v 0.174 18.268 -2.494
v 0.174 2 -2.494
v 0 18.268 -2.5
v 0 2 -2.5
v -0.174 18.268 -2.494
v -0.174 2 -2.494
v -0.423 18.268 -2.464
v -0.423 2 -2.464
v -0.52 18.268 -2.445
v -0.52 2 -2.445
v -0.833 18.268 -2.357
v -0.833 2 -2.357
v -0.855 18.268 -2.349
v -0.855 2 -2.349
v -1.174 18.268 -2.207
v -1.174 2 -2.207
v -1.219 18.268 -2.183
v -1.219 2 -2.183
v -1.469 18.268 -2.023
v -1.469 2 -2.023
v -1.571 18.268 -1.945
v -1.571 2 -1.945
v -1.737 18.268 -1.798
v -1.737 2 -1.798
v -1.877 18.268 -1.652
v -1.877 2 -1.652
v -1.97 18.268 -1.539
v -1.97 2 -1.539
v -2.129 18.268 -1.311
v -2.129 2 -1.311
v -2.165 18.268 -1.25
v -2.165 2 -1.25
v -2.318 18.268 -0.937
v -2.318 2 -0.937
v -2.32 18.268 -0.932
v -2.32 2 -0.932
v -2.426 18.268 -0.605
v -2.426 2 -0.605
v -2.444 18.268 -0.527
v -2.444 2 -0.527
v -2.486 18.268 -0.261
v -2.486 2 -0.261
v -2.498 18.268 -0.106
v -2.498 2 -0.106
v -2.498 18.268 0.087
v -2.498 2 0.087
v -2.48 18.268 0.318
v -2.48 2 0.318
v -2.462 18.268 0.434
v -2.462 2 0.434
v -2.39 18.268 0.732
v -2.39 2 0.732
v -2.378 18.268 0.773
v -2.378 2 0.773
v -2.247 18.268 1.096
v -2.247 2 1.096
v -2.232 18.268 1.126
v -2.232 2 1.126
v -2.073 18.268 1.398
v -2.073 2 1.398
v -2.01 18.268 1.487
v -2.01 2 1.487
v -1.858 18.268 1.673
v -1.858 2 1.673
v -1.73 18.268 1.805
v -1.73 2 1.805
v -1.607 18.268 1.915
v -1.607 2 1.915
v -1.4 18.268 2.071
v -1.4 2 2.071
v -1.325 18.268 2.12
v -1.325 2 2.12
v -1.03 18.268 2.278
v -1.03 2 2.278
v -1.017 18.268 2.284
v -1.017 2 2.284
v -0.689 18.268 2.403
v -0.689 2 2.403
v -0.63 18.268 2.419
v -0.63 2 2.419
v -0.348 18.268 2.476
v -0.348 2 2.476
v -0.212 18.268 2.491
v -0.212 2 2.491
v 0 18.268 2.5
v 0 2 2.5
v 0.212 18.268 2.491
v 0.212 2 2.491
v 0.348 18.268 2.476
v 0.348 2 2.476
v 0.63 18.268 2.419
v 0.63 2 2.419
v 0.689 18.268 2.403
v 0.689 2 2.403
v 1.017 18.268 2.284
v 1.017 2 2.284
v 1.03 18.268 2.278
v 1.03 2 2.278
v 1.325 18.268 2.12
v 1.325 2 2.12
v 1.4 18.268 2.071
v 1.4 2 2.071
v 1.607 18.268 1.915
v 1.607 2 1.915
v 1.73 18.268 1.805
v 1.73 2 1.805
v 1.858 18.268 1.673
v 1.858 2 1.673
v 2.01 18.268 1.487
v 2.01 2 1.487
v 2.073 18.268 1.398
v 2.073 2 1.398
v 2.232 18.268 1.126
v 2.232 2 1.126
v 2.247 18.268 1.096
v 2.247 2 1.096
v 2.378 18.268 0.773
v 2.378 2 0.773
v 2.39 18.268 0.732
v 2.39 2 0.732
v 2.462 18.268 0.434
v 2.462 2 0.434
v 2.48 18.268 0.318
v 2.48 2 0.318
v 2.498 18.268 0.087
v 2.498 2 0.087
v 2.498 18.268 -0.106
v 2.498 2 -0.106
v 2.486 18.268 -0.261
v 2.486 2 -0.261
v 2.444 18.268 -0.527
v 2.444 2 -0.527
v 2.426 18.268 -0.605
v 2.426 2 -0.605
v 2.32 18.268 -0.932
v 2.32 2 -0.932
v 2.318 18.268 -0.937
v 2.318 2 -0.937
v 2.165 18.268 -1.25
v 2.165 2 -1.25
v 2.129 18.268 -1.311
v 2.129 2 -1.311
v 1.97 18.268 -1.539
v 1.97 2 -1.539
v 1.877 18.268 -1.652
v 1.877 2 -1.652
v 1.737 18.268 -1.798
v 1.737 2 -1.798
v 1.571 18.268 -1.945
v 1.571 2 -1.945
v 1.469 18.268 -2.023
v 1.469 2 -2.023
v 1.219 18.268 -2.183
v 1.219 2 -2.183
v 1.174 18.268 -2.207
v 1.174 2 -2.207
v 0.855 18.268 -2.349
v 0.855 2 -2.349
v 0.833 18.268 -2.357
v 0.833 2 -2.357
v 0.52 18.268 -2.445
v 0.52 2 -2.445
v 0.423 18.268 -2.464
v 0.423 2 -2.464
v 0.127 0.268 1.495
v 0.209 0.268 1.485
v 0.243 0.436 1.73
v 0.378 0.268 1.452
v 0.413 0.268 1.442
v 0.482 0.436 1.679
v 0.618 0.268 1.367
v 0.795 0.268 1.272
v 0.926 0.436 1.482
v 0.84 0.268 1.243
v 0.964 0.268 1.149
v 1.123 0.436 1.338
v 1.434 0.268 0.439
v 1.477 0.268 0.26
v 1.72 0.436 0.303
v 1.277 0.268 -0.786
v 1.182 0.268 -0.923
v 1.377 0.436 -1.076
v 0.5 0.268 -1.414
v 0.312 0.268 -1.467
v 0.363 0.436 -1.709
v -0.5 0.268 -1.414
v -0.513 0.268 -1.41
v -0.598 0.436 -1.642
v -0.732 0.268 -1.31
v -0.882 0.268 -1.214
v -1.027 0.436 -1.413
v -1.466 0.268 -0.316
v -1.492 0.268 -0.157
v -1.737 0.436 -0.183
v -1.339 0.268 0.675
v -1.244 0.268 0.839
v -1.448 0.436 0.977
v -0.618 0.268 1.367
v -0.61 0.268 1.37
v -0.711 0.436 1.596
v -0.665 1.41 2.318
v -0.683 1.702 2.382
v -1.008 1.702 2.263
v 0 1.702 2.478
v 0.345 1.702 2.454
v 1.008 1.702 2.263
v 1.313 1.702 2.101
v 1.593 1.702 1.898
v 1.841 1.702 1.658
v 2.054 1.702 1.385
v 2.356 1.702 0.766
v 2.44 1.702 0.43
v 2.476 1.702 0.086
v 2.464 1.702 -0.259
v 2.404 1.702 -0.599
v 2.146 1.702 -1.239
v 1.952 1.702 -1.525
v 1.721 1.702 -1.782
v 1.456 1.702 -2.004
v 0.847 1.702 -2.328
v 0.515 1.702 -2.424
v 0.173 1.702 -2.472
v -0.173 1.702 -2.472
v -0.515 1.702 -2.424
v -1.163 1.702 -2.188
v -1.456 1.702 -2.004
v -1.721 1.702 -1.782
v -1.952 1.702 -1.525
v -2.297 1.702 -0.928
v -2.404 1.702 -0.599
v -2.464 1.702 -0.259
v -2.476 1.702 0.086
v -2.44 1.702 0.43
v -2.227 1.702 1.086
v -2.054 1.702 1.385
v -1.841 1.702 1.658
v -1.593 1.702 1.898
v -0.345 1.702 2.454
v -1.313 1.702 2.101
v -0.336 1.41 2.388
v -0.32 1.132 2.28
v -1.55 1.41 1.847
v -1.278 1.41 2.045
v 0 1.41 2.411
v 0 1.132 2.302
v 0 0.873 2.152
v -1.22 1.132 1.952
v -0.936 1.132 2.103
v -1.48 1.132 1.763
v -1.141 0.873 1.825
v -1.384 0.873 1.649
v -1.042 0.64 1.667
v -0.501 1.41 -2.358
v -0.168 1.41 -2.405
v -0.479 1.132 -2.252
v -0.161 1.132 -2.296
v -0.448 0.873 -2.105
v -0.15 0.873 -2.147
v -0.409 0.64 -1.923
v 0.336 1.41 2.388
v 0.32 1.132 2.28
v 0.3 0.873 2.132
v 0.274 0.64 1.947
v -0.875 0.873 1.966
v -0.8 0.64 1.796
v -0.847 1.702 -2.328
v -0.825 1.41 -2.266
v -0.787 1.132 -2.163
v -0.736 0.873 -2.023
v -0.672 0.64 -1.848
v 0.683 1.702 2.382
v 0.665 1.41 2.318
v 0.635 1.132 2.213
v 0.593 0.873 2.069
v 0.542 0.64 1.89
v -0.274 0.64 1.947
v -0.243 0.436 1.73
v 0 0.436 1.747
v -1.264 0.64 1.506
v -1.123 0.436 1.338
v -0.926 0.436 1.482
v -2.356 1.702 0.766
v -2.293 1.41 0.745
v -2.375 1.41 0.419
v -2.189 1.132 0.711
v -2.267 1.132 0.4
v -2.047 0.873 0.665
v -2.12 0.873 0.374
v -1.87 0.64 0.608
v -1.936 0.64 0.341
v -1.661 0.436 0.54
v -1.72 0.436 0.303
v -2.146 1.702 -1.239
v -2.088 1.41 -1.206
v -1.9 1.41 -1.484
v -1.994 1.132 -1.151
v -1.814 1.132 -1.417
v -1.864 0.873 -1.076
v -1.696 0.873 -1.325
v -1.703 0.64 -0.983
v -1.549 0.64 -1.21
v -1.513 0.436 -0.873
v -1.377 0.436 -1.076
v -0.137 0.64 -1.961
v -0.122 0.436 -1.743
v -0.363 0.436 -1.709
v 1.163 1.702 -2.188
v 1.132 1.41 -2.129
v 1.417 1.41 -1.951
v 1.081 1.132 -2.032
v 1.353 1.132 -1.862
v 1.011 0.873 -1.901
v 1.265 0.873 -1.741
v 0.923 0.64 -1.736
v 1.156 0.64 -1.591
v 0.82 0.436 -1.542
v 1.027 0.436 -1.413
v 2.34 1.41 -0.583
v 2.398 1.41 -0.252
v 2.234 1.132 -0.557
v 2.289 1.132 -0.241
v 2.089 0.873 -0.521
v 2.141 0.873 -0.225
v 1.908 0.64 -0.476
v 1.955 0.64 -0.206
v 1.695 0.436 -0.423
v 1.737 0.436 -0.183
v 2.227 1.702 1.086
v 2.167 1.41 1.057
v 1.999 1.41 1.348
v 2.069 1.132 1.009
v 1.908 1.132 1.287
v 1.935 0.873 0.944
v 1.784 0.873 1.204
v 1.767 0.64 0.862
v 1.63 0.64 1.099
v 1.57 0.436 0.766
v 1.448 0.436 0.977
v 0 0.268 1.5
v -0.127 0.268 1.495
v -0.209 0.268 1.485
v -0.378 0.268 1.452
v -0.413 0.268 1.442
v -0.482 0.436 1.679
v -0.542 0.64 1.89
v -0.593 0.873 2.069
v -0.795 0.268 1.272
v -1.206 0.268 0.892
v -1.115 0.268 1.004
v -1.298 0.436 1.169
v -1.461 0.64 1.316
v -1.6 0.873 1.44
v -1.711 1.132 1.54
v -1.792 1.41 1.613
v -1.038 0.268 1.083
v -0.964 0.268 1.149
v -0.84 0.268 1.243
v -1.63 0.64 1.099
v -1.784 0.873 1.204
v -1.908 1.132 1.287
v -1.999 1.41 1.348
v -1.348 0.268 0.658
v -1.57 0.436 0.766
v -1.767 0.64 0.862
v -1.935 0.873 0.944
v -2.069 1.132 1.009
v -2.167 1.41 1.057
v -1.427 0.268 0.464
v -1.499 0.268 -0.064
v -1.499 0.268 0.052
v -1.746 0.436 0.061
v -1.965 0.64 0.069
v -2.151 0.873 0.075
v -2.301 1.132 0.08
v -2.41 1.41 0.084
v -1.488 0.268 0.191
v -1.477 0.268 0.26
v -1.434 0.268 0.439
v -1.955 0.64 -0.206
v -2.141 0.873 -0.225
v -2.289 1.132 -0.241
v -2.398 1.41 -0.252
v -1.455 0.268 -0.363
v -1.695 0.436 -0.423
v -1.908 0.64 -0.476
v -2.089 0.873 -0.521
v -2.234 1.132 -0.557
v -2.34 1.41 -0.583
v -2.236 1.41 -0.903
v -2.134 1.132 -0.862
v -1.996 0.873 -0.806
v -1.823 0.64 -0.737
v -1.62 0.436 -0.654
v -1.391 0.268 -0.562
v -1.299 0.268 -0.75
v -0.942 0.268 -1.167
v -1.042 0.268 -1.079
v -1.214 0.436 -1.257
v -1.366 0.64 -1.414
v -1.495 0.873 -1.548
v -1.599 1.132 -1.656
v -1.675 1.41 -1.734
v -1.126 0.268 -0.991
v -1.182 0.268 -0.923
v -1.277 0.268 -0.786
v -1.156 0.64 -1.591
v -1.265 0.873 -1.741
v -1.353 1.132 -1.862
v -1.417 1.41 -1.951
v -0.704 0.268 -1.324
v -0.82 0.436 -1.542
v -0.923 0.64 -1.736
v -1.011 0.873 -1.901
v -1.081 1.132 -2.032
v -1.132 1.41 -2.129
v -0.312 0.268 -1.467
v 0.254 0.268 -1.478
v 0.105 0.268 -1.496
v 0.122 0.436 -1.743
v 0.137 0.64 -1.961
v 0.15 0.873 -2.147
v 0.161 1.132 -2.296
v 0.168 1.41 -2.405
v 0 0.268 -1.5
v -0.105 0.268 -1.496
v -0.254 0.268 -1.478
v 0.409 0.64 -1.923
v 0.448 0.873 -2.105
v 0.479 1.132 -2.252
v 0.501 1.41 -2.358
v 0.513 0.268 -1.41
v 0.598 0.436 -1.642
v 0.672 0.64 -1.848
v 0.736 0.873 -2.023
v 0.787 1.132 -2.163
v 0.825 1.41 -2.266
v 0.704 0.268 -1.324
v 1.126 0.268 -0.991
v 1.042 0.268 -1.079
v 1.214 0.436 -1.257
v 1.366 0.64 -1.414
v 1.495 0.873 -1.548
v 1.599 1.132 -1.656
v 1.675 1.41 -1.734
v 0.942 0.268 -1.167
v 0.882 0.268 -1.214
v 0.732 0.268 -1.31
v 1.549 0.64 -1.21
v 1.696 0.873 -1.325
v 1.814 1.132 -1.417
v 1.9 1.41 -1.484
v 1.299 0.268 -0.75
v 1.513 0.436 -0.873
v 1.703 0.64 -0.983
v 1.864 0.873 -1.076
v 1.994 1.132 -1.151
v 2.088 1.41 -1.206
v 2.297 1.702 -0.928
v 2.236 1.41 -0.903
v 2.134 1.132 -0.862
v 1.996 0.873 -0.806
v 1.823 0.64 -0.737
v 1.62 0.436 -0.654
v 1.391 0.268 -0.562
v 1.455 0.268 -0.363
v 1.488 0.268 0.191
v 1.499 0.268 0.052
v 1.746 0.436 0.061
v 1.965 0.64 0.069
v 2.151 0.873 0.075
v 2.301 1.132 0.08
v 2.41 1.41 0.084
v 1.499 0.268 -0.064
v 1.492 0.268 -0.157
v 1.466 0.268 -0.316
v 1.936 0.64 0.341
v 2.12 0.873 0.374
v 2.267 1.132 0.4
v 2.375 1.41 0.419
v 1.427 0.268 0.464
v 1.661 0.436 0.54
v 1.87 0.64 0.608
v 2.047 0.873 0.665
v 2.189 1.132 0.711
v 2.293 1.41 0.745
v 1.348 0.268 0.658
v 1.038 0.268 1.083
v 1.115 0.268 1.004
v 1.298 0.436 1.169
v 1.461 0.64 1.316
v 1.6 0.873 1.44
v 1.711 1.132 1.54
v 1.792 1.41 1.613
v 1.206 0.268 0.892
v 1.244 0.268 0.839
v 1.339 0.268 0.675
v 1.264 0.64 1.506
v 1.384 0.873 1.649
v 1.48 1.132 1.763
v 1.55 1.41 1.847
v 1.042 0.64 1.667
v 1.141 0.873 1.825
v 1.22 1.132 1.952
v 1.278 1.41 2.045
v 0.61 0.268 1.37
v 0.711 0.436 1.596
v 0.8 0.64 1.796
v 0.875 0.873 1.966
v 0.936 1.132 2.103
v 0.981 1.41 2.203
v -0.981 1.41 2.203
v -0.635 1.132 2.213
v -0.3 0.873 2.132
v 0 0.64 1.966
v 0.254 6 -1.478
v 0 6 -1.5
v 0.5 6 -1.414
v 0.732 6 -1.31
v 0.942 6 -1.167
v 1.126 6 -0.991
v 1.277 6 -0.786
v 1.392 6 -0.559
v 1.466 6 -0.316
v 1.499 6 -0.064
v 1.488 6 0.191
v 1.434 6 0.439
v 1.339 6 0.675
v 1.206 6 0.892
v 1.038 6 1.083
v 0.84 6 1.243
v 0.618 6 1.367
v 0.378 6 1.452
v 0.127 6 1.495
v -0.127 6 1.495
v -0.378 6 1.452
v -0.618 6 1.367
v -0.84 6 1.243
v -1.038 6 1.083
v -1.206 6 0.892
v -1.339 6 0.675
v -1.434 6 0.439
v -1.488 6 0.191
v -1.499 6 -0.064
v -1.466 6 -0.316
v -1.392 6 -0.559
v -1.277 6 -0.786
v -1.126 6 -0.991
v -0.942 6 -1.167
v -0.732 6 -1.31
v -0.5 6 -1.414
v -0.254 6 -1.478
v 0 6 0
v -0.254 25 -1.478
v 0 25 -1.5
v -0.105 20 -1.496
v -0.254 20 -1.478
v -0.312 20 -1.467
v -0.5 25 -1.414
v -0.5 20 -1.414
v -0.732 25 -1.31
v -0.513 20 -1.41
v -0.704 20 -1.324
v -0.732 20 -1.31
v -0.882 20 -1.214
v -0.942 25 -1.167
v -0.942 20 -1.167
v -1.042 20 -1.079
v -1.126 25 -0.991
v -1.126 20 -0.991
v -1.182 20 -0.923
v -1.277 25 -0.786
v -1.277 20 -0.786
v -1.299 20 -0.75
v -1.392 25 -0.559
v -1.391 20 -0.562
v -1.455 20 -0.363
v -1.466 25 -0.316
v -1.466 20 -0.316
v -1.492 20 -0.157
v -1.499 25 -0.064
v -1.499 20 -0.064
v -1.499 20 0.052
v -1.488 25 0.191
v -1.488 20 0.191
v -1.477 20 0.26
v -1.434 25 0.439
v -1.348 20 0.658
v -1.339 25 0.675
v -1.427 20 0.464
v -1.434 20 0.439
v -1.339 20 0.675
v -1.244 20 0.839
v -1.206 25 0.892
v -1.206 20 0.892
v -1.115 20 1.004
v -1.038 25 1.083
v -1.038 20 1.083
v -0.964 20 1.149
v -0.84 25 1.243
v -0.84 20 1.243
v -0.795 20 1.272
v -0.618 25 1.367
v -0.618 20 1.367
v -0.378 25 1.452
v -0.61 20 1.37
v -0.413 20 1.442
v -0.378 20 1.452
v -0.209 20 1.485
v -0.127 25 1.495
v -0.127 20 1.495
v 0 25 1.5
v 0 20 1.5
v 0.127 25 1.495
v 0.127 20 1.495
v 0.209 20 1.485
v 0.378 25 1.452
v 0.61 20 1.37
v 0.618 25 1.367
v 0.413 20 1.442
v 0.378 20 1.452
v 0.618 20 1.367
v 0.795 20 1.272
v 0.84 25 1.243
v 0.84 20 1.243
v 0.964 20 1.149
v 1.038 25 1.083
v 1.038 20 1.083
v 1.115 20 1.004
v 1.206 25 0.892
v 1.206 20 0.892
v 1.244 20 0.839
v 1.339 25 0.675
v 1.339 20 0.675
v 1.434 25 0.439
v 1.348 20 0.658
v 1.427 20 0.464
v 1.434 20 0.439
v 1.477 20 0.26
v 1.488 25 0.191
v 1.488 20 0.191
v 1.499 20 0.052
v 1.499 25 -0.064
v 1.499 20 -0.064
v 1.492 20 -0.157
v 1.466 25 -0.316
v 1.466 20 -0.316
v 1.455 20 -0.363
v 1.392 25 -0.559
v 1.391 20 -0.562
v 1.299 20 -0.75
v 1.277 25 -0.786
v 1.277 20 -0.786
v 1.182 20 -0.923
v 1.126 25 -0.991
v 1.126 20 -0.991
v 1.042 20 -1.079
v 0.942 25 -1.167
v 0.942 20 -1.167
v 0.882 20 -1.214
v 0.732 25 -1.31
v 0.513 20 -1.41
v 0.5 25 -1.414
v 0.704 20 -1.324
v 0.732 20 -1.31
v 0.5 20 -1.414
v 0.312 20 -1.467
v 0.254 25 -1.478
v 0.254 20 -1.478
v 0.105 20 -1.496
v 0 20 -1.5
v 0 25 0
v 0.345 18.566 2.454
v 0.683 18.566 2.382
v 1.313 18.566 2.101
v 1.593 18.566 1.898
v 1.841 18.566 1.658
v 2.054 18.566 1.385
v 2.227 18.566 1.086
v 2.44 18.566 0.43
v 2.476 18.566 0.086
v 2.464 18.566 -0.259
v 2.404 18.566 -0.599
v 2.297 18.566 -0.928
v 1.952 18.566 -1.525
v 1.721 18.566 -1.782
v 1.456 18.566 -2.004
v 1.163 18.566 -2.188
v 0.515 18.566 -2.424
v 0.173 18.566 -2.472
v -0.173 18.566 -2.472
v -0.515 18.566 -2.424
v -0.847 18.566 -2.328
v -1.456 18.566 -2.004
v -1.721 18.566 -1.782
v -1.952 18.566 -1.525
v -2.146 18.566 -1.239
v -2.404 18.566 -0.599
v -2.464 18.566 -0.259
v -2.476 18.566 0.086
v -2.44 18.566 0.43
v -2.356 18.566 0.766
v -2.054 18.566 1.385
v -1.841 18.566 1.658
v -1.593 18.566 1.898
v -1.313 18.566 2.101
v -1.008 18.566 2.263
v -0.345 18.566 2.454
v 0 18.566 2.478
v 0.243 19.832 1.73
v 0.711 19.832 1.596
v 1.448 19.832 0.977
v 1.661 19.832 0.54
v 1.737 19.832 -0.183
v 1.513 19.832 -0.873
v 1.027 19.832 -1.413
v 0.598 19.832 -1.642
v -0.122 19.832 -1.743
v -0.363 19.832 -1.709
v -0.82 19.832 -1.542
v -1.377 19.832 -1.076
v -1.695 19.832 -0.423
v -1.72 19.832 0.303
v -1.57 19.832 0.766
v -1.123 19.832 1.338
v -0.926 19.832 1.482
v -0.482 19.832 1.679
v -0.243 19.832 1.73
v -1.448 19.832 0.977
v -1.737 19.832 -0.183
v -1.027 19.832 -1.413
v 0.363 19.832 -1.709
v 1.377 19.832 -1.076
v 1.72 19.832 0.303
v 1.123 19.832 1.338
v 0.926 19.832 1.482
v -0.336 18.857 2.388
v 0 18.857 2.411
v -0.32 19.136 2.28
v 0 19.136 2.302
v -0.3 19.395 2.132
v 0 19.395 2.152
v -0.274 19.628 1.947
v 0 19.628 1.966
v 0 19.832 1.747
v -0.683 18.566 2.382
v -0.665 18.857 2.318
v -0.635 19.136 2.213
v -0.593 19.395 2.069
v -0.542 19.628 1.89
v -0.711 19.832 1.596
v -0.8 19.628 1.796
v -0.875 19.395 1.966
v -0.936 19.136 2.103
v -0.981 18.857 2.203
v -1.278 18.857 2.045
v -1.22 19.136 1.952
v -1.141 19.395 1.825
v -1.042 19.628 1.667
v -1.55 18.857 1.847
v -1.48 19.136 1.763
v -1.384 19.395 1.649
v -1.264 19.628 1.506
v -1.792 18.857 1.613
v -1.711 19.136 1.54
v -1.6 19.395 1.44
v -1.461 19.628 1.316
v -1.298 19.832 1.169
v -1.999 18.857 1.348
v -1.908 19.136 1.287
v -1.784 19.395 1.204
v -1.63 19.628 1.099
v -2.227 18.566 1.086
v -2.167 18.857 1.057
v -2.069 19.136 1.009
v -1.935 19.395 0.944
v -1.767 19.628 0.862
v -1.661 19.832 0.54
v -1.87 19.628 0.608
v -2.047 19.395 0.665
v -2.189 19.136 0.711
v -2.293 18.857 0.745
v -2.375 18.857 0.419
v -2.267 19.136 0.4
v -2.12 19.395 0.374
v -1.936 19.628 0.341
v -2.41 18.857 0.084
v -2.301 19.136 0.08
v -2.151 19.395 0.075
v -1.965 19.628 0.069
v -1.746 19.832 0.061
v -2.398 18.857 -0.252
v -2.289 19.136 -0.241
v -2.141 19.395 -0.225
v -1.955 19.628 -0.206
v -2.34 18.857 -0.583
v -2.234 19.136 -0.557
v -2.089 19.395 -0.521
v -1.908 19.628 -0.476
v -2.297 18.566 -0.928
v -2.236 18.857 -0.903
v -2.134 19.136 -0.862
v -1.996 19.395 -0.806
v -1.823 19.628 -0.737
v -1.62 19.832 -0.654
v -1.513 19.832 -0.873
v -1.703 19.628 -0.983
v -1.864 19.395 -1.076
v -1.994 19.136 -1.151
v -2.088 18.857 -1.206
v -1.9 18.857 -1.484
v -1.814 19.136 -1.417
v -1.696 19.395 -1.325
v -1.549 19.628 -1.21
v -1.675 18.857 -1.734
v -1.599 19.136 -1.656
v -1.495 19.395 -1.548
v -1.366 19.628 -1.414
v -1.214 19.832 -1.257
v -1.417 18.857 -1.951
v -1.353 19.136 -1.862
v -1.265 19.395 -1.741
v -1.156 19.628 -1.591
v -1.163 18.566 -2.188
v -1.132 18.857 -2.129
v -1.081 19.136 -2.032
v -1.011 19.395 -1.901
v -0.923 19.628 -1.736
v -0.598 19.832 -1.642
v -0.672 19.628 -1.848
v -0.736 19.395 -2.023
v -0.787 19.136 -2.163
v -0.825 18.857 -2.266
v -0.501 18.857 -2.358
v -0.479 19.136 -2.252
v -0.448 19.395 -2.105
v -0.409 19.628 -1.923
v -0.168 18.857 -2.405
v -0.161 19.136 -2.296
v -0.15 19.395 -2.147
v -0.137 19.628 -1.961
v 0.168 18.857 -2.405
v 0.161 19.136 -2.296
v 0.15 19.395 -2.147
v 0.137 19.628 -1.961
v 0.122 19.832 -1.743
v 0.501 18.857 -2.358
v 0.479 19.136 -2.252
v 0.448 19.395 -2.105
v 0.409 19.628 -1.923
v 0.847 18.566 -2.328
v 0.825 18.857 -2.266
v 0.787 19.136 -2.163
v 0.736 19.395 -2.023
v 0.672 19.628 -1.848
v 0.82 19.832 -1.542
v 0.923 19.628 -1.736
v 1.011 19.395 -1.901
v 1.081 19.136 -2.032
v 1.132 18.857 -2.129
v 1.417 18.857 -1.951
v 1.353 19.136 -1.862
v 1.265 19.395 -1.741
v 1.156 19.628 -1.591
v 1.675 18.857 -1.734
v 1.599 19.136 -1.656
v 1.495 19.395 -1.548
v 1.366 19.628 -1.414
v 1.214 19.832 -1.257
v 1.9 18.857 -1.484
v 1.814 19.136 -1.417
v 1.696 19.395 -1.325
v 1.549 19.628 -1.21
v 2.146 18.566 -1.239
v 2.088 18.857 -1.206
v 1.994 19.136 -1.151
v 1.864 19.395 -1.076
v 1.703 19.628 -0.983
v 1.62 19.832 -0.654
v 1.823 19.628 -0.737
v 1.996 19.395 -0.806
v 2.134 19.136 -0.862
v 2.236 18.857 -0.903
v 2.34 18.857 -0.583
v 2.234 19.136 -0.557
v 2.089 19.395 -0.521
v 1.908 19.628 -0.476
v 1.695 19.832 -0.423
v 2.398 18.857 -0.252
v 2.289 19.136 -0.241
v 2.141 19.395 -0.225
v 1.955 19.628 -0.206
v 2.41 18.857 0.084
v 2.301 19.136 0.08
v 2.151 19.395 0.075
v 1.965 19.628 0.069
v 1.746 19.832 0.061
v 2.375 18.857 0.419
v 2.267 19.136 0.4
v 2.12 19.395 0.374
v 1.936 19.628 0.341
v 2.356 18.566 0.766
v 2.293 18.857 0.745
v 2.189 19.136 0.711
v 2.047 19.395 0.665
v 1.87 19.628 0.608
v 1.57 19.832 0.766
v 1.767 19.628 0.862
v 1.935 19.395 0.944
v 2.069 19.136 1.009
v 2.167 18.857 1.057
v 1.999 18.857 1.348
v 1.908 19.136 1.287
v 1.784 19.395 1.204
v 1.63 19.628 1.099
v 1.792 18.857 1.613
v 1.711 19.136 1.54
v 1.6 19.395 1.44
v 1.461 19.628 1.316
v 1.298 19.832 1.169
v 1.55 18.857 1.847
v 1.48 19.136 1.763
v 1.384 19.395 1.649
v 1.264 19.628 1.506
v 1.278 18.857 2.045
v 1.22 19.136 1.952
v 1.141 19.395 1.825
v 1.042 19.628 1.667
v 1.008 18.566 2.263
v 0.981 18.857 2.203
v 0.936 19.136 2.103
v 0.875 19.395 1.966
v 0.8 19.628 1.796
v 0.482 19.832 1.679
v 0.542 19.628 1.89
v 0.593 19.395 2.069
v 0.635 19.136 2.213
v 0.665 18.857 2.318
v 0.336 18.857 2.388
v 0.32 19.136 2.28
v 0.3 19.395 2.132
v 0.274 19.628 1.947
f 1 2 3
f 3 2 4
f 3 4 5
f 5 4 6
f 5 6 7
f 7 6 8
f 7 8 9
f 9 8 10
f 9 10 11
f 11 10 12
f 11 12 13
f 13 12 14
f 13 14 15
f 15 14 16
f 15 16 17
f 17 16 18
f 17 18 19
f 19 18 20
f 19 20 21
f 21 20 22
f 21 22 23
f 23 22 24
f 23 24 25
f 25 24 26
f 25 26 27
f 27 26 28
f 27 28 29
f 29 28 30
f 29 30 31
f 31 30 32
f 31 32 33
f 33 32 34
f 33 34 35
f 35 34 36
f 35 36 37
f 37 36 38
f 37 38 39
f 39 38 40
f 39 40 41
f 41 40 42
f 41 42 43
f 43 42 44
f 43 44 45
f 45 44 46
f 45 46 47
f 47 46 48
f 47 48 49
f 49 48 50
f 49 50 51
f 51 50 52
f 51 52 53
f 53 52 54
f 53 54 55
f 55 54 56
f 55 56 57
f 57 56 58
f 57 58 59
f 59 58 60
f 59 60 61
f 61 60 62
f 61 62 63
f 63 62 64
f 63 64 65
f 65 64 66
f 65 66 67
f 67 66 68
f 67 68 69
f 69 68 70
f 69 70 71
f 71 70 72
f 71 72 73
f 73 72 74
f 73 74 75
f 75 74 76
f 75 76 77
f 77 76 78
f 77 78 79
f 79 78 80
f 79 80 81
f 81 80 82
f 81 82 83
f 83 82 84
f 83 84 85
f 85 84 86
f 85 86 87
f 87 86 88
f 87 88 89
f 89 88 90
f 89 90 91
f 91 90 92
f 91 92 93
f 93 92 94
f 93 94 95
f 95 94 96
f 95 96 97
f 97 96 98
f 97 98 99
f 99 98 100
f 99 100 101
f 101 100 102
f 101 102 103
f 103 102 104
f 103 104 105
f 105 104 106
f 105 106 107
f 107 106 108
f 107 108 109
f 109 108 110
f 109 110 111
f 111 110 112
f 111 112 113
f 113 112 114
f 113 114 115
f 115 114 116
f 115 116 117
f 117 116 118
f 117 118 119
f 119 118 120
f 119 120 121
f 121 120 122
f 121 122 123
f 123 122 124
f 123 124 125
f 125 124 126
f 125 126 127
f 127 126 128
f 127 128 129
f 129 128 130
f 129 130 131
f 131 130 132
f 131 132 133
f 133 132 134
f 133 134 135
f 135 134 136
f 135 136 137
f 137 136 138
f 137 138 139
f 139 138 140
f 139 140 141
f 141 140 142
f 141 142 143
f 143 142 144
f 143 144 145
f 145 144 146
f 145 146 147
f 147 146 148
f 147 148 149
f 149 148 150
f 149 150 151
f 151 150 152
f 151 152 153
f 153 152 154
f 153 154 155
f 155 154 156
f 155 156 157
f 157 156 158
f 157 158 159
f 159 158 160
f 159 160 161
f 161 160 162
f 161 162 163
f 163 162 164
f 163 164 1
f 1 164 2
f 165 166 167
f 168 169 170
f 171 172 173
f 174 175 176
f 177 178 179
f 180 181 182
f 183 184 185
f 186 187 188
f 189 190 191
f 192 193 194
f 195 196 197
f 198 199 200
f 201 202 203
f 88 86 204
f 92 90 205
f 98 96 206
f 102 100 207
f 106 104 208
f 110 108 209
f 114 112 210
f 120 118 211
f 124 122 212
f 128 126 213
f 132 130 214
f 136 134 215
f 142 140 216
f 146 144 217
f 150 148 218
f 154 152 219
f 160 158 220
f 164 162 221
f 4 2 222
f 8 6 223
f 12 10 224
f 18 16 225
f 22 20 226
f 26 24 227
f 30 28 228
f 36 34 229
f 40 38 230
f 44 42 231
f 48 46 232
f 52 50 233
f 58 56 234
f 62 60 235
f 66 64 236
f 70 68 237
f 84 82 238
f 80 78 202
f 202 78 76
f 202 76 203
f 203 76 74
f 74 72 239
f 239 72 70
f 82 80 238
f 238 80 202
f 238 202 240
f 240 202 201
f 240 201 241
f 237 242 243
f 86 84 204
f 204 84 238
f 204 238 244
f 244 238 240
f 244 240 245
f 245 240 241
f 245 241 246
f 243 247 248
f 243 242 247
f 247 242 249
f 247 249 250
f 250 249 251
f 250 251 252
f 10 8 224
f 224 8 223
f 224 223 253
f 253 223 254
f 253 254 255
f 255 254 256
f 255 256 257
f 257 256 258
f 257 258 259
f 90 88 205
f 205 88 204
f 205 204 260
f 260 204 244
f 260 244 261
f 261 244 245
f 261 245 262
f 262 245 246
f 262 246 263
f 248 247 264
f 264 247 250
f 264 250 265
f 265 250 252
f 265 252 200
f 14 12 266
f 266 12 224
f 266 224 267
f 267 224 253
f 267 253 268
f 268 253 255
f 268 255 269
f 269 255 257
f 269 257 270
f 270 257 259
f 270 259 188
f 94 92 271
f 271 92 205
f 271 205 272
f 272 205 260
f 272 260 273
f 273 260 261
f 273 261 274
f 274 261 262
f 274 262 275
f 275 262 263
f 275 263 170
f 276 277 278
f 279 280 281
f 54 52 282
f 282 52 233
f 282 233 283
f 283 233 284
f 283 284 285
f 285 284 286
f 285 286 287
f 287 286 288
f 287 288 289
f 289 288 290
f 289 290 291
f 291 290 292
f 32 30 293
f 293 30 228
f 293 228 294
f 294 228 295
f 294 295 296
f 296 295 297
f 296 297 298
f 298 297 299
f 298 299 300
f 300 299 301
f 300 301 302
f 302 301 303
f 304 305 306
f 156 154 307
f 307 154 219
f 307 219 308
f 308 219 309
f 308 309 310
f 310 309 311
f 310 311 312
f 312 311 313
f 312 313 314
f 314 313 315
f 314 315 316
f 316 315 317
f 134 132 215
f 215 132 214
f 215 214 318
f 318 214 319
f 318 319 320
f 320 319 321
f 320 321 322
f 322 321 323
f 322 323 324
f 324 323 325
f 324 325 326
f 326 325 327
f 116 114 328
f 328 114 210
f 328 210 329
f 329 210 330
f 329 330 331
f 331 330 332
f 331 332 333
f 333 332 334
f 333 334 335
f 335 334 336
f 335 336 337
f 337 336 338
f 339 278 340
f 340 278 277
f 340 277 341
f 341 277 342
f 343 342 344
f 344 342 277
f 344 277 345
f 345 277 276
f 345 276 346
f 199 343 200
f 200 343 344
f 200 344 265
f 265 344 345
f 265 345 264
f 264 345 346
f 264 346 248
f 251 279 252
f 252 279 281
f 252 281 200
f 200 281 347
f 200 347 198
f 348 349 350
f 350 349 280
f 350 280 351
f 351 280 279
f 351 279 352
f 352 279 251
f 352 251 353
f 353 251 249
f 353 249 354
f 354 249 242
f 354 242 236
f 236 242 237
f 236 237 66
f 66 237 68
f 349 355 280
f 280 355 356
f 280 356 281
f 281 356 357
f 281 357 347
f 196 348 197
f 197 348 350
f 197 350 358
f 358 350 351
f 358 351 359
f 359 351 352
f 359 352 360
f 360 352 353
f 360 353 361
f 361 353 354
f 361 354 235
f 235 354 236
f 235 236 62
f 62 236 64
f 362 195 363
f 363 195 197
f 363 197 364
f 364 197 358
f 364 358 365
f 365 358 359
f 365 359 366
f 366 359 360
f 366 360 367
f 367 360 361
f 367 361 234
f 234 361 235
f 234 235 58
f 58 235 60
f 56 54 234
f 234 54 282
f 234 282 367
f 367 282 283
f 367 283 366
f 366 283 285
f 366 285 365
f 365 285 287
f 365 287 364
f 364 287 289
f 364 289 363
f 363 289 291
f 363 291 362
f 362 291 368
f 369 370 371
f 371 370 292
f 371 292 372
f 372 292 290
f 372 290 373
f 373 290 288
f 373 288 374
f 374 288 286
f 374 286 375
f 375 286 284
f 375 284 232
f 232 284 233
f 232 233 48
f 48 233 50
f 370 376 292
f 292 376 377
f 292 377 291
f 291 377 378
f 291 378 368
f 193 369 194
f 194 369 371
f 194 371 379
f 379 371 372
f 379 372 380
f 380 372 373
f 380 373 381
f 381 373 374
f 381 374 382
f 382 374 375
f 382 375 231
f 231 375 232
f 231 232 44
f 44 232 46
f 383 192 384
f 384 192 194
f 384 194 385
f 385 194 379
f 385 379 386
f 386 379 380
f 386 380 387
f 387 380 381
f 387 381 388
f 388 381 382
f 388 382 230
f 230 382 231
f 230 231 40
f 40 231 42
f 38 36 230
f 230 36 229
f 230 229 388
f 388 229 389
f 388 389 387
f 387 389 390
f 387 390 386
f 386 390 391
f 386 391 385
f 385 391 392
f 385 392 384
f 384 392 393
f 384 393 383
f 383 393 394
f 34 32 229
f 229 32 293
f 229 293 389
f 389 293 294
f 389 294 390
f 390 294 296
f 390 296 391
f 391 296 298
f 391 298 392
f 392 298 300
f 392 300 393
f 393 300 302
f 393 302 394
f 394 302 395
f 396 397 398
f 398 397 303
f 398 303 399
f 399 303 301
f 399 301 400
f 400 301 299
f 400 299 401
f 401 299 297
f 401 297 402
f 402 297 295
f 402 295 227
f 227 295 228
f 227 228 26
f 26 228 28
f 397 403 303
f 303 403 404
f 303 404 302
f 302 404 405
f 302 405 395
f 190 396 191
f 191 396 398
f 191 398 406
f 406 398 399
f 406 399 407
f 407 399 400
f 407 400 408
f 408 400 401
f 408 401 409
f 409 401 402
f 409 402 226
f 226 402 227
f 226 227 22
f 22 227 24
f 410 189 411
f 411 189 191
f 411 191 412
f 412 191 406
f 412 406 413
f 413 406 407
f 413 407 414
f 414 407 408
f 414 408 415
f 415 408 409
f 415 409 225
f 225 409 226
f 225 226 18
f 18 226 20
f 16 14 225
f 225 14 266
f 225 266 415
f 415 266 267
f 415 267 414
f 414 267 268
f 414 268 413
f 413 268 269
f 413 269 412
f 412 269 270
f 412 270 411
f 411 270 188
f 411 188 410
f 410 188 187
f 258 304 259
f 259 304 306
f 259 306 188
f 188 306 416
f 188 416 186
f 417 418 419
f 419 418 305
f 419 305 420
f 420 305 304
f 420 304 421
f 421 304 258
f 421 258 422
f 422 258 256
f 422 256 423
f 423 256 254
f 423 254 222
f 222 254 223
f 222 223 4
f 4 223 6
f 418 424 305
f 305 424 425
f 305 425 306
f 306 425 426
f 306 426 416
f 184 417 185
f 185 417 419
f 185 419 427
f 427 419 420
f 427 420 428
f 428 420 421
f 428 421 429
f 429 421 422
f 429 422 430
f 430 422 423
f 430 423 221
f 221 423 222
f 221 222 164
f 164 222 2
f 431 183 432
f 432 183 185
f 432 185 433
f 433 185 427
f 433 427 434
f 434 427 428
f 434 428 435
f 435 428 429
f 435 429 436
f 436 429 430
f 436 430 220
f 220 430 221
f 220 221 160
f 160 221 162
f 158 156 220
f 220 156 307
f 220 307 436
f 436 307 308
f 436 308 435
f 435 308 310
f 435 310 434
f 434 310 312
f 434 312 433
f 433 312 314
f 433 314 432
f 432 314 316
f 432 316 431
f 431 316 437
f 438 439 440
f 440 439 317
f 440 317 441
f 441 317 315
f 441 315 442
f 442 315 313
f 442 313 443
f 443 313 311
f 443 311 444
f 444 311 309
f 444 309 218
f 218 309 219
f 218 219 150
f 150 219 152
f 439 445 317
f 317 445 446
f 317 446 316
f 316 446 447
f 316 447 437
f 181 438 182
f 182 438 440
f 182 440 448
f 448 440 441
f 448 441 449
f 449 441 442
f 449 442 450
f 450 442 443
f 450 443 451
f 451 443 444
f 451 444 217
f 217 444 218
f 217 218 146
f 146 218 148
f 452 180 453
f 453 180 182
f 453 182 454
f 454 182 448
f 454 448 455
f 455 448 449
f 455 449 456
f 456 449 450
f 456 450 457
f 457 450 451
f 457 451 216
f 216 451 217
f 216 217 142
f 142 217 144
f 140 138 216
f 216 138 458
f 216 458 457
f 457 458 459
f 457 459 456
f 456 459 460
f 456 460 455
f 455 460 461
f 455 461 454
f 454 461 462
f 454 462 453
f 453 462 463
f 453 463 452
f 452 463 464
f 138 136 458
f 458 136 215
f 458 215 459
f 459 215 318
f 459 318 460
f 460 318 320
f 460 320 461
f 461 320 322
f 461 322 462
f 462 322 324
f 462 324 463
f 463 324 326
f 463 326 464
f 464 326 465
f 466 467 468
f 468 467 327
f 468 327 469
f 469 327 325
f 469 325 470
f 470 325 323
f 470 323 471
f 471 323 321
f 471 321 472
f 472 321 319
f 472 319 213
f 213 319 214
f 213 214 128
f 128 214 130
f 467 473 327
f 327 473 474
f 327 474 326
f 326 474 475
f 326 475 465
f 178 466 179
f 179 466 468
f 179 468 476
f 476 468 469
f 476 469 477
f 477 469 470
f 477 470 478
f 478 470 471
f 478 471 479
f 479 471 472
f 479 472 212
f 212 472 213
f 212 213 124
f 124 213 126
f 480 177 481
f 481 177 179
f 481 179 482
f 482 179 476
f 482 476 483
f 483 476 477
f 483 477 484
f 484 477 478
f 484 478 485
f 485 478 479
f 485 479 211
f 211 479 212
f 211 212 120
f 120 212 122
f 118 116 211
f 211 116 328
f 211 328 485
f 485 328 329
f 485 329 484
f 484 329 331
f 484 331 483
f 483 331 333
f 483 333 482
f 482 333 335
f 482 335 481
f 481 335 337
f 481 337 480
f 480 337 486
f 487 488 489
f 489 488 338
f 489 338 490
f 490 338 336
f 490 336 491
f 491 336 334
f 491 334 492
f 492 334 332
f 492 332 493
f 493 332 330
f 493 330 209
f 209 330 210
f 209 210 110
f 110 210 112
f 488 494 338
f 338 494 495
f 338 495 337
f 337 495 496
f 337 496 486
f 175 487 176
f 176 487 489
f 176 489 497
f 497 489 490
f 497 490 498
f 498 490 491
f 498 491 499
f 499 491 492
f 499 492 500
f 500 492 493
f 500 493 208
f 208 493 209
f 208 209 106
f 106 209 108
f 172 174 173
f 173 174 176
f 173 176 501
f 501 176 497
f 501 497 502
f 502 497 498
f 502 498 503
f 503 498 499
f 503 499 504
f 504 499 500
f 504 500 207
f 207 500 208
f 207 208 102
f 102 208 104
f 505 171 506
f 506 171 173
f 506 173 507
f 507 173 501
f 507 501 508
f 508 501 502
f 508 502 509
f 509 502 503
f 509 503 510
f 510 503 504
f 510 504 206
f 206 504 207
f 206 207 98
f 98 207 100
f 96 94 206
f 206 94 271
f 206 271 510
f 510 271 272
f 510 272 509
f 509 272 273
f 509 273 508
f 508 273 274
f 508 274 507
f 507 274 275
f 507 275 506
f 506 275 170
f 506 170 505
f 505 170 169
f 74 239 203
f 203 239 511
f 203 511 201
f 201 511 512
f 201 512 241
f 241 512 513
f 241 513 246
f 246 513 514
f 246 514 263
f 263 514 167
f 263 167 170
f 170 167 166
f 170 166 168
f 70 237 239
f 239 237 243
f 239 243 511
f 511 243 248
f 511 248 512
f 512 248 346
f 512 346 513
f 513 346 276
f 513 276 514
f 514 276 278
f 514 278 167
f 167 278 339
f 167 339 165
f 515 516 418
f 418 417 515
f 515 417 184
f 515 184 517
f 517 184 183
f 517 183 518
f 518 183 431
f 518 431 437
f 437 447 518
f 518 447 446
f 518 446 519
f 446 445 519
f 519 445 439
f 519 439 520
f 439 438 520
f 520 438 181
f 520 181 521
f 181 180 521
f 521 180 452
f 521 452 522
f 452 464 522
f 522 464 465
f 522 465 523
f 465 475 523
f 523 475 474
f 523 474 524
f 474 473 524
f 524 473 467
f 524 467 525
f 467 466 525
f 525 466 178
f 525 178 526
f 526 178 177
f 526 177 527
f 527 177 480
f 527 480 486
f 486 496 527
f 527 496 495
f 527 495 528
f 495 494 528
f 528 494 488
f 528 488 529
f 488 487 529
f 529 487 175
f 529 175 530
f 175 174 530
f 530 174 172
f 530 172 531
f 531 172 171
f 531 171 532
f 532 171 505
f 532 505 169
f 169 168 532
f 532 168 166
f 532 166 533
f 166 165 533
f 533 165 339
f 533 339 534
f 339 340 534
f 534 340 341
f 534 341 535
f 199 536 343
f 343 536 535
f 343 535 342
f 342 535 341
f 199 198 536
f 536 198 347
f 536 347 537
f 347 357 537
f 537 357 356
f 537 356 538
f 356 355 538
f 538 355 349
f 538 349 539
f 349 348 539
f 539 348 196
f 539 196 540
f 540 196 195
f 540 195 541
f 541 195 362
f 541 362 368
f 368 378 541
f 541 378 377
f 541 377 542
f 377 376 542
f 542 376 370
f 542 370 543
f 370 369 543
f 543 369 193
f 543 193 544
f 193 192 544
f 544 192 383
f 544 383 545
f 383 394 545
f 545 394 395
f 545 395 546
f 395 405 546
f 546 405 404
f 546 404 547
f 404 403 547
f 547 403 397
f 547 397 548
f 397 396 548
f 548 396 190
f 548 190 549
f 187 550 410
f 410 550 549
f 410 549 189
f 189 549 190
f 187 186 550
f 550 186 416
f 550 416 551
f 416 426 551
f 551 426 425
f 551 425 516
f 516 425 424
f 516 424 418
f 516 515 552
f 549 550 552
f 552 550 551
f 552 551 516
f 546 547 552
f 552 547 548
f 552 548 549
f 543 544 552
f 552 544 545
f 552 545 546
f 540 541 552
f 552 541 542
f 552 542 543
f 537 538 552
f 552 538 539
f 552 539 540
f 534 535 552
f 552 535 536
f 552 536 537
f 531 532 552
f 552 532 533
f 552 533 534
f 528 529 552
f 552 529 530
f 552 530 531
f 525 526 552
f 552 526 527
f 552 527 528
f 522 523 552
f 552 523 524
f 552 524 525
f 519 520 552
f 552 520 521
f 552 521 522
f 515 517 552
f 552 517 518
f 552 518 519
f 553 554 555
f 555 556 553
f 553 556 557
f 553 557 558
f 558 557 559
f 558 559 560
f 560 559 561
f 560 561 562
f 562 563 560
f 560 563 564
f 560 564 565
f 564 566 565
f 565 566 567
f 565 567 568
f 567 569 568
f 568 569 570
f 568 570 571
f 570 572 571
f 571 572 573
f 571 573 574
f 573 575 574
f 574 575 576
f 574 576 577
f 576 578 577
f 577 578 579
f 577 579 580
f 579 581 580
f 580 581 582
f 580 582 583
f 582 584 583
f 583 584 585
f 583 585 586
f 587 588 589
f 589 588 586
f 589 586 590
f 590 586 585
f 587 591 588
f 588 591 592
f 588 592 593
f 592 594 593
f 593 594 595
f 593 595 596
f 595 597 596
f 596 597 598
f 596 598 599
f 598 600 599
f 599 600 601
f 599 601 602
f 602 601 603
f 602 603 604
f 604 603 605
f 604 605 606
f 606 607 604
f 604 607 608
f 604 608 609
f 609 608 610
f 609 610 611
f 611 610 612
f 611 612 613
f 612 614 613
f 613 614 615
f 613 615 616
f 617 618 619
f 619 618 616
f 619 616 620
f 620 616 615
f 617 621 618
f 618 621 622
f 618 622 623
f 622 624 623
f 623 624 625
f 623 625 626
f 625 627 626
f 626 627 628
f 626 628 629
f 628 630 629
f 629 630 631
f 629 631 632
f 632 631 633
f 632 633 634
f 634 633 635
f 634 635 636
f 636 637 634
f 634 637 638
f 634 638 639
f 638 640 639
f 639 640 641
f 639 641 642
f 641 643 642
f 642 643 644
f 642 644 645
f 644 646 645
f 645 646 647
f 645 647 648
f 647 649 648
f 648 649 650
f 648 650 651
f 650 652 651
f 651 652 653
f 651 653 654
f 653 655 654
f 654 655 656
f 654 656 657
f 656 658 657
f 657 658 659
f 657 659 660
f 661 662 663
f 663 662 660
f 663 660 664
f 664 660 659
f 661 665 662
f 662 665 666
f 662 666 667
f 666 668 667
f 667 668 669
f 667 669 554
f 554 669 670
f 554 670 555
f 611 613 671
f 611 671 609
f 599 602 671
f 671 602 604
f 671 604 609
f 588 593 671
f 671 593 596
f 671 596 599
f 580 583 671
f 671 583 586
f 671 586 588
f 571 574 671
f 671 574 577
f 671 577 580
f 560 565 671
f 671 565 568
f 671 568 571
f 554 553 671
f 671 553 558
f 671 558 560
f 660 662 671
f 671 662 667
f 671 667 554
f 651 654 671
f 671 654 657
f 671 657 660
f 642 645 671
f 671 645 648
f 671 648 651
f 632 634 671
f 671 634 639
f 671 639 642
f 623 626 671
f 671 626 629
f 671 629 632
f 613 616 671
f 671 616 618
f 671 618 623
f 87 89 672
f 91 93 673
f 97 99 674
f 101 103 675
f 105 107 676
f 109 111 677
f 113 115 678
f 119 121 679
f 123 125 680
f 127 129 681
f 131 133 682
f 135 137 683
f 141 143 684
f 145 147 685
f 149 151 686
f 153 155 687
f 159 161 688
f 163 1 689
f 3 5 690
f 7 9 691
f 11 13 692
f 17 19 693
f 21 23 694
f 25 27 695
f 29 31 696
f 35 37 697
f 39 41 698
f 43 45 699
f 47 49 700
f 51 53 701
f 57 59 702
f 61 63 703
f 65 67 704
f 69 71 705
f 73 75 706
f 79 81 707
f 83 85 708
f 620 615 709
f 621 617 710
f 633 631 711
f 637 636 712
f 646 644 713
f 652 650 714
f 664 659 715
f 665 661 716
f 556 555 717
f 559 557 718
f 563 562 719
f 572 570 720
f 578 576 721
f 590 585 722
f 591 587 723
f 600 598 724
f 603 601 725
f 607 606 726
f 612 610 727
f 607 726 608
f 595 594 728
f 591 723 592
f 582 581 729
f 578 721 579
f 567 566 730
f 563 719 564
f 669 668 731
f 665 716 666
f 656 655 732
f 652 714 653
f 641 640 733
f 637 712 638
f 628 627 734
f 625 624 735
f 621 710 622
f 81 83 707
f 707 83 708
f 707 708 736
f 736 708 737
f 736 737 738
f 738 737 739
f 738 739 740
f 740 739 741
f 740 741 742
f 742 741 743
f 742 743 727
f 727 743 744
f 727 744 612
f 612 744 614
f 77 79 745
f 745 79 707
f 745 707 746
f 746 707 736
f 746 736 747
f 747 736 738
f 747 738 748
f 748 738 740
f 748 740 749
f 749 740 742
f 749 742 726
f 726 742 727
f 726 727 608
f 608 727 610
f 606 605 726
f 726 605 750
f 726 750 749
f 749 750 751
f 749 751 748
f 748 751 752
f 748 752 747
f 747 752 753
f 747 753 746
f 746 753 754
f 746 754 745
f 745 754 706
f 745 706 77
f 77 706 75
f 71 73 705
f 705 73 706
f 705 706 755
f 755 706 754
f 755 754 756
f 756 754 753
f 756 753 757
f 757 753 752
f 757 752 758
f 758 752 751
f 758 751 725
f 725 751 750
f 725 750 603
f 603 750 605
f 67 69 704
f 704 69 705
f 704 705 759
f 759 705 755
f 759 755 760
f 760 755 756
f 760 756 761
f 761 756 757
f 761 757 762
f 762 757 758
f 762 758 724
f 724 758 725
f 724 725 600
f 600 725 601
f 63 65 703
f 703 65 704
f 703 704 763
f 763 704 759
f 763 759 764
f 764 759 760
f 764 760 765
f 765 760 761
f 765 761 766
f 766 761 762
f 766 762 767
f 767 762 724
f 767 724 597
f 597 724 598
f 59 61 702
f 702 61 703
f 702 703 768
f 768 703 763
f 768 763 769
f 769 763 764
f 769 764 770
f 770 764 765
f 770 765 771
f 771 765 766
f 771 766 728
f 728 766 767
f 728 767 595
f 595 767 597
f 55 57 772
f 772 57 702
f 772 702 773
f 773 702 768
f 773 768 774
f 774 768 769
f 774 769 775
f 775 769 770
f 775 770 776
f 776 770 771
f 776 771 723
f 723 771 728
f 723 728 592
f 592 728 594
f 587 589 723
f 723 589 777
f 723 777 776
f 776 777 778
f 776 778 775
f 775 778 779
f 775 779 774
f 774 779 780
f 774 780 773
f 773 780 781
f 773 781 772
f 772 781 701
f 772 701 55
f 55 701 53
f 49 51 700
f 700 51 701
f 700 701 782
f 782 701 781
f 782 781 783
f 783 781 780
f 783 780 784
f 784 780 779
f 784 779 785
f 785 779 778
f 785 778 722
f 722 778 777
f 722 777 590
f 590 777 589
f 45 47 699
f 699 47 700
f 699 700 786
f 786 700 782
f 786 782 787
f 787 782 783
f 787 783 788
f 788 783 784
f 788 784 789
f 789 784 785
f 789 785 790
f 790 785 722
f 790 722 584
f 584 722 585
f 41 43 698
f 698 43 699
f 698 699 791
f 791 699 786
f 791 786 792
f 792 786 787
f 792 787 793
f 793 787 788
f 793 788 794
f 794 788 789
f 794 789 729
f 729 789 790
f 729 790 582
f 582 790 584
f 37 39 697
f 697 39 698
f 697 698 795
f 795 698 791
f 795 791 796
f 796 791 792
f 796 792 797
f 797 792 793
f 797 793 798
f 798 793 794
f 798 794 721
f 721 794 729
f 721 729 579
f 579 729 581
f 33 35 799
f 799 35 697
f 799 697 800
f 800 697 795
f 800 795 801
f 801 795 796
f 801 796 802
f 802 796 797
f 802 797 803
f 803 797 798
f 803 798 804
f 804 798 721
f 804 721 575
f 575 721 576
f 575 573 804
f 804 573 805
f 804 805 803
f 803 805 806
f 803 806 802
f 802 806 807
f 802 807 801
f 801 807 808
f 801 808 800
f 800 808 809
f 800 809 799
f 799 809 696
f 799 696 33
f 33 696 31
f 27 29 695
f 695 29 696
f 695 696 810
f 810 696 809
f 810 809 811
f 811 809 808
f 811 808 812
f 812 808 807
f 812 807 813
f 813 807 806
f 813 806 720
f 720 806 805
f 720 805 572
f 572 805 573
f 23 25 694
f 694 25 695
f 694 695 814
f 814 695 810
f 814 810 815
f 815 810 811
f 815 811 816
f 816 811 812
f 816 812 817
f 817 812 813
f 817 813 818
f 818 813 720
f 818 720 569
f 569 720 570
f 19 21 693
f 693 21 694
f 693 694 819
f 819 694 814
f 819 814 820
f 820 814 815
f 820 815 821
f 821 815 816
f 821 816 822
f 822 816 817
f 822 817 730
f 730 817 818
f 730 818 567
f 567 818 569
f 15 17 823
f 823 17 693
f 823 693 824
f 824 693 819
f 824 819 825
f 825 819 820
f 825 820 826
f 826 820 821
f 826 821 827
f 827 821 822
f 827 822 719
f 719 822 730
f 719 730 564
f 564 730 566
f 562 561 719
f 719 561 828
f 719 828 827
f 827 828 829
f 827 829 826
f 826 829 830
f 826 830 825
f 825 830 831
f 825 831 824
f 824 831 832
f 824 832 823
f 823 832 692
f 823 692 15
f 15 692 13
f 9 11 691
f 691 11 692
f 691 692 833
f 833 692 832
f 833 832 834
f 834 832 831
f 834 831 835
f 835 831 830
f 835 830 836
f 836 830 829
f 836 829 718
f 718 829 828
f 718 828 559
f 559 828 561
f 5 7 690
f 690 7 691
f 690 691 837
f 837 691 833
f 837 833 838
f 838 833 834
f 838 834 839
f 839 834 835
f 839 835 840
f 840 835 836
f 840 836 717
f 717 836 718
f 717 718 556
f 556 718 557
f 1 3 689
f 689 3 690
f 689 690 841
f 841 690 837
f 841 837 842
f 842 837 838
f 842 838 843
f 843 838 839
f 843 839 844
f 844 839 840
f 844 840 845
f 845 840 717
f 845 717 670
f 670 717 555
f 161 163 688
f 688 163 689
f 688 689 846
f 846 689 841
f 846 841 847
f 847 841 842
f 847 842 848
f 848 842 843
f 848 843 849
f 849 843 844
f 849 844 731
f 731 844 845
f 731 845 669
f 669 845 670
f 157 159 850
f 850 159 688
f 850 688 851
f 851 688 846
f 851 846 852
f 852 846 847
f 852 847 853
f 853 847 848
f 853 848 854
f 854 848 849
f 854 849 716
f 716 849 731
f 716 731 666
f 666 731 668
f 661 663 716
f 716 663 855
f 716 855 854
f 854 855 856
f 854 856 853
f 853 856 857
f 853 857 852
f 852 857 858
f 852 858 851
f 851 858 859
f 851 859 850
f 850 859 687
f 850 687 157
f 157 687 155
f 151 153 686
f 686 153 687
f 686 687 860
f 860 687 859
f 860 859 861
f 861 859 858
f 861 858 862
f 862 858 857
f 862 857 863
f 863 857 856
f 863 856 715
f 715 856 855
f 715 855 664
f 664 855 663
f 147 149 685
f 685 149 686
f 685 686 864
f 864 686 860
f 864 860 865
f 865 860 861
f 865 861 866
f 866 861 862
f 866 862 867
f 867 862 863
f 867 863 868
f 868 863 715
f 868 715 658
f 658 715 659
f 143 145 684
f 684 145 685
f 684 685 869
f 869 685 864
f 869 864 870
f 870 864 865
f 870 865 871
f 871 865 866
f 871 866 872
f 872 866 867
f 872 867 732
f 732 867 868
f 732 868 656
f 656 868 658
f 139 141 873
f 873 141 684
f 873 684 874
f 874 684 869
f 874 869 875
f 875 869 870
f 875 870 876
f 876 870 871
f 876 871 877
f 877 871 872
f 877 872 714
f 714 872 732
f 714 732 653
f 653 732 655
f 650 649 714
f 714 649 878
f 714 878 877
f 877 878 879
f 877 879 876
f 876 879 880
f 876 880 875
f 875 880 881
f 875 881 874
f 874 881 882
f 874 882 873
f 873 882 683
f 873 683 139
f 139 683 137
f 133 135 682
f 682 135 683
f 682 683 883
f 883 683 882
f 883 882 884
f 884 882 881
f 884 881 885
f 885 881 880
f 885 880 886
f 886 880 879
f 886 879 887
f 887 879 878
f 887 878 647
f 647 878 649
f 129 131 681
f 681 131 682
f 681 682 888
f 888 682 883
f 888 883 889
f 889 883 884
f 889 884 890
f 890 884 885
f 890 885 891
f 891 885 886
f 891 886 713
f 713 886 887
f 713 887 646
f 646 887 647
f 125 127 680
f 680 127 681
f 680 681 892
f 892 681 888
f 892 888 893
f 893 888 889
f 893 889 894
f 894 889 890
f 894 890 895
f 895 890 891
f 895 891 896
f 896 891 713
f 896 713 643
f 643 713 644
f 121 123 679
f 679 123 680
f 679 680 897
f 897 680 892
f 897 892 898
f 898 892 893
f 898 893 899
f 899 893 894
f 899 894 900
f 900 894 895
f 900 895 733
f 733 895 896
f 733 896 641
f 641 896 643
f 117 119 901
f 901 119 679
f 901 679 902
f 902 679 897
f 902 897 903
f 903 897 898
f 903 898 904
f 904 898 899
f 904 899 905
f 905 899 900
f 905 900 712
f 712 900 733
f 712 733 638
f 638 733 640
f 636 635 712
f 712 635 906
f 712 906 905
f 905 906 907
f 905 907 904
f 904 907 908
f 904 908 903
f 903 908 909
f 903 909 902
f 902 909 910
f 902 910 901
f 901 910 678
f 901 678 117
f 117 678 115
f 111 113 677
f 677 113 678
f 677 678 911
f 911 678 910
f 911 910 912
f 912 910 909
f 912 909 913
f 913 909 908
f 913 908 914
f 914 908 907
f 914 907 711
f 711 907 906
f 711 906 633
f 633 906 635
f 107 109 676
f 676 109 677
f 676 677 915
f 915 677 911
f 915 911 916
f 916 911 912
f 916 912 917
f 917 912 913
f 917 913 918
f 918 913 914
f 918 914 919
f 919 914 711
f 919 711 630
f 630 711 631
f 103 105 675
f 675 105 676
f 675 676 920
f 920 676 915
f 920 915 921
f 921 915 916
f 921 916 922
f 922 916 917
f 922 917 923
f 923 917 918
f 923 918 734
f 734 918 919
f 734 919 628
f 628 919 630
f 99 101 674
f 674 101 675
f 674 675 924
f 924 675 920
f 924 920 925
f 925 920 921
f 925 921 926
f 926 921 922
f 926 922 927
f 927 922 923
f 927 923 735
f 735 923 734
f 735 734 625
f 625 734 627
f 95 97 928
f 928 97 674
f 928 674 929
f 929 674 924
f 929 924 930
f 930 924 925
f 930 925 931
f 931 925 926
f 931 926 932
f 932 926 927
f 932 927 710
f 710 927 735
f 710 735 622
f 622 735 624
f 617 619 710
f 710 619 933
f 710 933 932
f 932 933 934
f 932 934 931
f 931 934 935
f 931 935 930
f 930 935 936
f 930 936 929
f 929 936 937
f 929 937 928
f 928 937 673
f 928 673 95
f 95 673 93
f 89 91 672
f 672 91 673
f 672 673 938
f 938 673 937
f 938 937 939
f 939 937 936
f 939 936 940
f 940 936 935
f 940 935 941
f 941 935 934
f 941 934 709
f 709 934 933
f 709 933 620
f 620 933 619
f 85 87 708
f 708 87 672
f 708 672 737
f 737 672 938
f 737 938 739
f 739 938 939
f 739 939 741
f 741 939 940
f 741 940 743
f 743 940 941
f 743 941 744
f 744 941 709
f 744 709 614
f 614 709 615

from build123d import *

# Parameters (mm, degrees)
CROQUIS1_R              = 2.5
SALIENTE_EXTRUIR1_DEPTH = 20
REDONDEO1_R             = 2
CROQUIS2_R              = 1.5
CORTAR_EXTRUIR1_DEPTH   = 6
CROQUIS3_R              = 1.5
SALIENTE_EXTRUIR2_DEPTH = 5
REDONDEO2_R             = 2


with BuildPart() as part:
    # Croquis1 → Saliente-Extruir1 (new body)
    with BuildSketch(Plane(origin=(0, 0, 0), x_dir=(1, 0, 0), z_dir=(0, 1, 0))):
        with Locations(Location((0, 0, 0), (0, 0, 270))):
            Circle(CROQUIS1_R)
    extrude(amount=SALIENTE_EXTRUIR1_DEPTH)

    # Redondeo1
    redondeo1_edges = [part.edges().sort_by_distance(p)[0] for p in [
        (0, 0, -2.5),
    ]]
    fillet(redondeo1_edges, radius=REDONDEO1_R)

    # Croquis2 → Cortar-Extruir1 (cut)
    with BuildSketch(Plane.XZ):
        with Locations(Location((0, 0, 0), (0, 0, 270))):
            Circle(CROQUIS2_R)
    extrude(amount=-CORTAR_EXTRUIR1_DEPTH, mode=Mode.SUBTRACT)

    # Croquis3 → Saliente-Extruir2 (add)
    with BuildSketch(Plane(origin=(0, 20, 0), x_dir=(1, 0, 0), z_dir=(0, 1, 0))):
        with Locations(Location((0, 0, 0), (0, 0, 90))):
            Circle(CROQUIS3_R)
    extrude(amount=SALIENTE_EXTRUIR2_DEPTH)

    # Redondeo2
    # the kernel refuses this fillet: 2 mm, written as the material it takes off along each edge
    with BuildSketch(Plane(origin=(0, 20, 0), x_dir=(0, 0, 1), z_dir=(-1, 0, 0))) as redondeo2_piece_1:
        with BuildLine():
            CenterArc((0.5, -1.732050808), REDONDEO2_R, 0, 60)
            Line((1.5, 0), (1.52, 0.034641016))
            ThreePointArc((1.52, 0.034641016), (2, 0.04), (2.5, 0.04))
            Line((2.5, 0.04), (2.54, 0))
            Line((2.54, 0), (2.54, -1.732050808))
            Line((2.54, -1.732050808), (2.5, -1.732050808))
        make_face()
    revolve(axis=Axis((0, 20, 0), (0, 1, 0)), mode=Mode.SUBTRACT)


solid = part.part
